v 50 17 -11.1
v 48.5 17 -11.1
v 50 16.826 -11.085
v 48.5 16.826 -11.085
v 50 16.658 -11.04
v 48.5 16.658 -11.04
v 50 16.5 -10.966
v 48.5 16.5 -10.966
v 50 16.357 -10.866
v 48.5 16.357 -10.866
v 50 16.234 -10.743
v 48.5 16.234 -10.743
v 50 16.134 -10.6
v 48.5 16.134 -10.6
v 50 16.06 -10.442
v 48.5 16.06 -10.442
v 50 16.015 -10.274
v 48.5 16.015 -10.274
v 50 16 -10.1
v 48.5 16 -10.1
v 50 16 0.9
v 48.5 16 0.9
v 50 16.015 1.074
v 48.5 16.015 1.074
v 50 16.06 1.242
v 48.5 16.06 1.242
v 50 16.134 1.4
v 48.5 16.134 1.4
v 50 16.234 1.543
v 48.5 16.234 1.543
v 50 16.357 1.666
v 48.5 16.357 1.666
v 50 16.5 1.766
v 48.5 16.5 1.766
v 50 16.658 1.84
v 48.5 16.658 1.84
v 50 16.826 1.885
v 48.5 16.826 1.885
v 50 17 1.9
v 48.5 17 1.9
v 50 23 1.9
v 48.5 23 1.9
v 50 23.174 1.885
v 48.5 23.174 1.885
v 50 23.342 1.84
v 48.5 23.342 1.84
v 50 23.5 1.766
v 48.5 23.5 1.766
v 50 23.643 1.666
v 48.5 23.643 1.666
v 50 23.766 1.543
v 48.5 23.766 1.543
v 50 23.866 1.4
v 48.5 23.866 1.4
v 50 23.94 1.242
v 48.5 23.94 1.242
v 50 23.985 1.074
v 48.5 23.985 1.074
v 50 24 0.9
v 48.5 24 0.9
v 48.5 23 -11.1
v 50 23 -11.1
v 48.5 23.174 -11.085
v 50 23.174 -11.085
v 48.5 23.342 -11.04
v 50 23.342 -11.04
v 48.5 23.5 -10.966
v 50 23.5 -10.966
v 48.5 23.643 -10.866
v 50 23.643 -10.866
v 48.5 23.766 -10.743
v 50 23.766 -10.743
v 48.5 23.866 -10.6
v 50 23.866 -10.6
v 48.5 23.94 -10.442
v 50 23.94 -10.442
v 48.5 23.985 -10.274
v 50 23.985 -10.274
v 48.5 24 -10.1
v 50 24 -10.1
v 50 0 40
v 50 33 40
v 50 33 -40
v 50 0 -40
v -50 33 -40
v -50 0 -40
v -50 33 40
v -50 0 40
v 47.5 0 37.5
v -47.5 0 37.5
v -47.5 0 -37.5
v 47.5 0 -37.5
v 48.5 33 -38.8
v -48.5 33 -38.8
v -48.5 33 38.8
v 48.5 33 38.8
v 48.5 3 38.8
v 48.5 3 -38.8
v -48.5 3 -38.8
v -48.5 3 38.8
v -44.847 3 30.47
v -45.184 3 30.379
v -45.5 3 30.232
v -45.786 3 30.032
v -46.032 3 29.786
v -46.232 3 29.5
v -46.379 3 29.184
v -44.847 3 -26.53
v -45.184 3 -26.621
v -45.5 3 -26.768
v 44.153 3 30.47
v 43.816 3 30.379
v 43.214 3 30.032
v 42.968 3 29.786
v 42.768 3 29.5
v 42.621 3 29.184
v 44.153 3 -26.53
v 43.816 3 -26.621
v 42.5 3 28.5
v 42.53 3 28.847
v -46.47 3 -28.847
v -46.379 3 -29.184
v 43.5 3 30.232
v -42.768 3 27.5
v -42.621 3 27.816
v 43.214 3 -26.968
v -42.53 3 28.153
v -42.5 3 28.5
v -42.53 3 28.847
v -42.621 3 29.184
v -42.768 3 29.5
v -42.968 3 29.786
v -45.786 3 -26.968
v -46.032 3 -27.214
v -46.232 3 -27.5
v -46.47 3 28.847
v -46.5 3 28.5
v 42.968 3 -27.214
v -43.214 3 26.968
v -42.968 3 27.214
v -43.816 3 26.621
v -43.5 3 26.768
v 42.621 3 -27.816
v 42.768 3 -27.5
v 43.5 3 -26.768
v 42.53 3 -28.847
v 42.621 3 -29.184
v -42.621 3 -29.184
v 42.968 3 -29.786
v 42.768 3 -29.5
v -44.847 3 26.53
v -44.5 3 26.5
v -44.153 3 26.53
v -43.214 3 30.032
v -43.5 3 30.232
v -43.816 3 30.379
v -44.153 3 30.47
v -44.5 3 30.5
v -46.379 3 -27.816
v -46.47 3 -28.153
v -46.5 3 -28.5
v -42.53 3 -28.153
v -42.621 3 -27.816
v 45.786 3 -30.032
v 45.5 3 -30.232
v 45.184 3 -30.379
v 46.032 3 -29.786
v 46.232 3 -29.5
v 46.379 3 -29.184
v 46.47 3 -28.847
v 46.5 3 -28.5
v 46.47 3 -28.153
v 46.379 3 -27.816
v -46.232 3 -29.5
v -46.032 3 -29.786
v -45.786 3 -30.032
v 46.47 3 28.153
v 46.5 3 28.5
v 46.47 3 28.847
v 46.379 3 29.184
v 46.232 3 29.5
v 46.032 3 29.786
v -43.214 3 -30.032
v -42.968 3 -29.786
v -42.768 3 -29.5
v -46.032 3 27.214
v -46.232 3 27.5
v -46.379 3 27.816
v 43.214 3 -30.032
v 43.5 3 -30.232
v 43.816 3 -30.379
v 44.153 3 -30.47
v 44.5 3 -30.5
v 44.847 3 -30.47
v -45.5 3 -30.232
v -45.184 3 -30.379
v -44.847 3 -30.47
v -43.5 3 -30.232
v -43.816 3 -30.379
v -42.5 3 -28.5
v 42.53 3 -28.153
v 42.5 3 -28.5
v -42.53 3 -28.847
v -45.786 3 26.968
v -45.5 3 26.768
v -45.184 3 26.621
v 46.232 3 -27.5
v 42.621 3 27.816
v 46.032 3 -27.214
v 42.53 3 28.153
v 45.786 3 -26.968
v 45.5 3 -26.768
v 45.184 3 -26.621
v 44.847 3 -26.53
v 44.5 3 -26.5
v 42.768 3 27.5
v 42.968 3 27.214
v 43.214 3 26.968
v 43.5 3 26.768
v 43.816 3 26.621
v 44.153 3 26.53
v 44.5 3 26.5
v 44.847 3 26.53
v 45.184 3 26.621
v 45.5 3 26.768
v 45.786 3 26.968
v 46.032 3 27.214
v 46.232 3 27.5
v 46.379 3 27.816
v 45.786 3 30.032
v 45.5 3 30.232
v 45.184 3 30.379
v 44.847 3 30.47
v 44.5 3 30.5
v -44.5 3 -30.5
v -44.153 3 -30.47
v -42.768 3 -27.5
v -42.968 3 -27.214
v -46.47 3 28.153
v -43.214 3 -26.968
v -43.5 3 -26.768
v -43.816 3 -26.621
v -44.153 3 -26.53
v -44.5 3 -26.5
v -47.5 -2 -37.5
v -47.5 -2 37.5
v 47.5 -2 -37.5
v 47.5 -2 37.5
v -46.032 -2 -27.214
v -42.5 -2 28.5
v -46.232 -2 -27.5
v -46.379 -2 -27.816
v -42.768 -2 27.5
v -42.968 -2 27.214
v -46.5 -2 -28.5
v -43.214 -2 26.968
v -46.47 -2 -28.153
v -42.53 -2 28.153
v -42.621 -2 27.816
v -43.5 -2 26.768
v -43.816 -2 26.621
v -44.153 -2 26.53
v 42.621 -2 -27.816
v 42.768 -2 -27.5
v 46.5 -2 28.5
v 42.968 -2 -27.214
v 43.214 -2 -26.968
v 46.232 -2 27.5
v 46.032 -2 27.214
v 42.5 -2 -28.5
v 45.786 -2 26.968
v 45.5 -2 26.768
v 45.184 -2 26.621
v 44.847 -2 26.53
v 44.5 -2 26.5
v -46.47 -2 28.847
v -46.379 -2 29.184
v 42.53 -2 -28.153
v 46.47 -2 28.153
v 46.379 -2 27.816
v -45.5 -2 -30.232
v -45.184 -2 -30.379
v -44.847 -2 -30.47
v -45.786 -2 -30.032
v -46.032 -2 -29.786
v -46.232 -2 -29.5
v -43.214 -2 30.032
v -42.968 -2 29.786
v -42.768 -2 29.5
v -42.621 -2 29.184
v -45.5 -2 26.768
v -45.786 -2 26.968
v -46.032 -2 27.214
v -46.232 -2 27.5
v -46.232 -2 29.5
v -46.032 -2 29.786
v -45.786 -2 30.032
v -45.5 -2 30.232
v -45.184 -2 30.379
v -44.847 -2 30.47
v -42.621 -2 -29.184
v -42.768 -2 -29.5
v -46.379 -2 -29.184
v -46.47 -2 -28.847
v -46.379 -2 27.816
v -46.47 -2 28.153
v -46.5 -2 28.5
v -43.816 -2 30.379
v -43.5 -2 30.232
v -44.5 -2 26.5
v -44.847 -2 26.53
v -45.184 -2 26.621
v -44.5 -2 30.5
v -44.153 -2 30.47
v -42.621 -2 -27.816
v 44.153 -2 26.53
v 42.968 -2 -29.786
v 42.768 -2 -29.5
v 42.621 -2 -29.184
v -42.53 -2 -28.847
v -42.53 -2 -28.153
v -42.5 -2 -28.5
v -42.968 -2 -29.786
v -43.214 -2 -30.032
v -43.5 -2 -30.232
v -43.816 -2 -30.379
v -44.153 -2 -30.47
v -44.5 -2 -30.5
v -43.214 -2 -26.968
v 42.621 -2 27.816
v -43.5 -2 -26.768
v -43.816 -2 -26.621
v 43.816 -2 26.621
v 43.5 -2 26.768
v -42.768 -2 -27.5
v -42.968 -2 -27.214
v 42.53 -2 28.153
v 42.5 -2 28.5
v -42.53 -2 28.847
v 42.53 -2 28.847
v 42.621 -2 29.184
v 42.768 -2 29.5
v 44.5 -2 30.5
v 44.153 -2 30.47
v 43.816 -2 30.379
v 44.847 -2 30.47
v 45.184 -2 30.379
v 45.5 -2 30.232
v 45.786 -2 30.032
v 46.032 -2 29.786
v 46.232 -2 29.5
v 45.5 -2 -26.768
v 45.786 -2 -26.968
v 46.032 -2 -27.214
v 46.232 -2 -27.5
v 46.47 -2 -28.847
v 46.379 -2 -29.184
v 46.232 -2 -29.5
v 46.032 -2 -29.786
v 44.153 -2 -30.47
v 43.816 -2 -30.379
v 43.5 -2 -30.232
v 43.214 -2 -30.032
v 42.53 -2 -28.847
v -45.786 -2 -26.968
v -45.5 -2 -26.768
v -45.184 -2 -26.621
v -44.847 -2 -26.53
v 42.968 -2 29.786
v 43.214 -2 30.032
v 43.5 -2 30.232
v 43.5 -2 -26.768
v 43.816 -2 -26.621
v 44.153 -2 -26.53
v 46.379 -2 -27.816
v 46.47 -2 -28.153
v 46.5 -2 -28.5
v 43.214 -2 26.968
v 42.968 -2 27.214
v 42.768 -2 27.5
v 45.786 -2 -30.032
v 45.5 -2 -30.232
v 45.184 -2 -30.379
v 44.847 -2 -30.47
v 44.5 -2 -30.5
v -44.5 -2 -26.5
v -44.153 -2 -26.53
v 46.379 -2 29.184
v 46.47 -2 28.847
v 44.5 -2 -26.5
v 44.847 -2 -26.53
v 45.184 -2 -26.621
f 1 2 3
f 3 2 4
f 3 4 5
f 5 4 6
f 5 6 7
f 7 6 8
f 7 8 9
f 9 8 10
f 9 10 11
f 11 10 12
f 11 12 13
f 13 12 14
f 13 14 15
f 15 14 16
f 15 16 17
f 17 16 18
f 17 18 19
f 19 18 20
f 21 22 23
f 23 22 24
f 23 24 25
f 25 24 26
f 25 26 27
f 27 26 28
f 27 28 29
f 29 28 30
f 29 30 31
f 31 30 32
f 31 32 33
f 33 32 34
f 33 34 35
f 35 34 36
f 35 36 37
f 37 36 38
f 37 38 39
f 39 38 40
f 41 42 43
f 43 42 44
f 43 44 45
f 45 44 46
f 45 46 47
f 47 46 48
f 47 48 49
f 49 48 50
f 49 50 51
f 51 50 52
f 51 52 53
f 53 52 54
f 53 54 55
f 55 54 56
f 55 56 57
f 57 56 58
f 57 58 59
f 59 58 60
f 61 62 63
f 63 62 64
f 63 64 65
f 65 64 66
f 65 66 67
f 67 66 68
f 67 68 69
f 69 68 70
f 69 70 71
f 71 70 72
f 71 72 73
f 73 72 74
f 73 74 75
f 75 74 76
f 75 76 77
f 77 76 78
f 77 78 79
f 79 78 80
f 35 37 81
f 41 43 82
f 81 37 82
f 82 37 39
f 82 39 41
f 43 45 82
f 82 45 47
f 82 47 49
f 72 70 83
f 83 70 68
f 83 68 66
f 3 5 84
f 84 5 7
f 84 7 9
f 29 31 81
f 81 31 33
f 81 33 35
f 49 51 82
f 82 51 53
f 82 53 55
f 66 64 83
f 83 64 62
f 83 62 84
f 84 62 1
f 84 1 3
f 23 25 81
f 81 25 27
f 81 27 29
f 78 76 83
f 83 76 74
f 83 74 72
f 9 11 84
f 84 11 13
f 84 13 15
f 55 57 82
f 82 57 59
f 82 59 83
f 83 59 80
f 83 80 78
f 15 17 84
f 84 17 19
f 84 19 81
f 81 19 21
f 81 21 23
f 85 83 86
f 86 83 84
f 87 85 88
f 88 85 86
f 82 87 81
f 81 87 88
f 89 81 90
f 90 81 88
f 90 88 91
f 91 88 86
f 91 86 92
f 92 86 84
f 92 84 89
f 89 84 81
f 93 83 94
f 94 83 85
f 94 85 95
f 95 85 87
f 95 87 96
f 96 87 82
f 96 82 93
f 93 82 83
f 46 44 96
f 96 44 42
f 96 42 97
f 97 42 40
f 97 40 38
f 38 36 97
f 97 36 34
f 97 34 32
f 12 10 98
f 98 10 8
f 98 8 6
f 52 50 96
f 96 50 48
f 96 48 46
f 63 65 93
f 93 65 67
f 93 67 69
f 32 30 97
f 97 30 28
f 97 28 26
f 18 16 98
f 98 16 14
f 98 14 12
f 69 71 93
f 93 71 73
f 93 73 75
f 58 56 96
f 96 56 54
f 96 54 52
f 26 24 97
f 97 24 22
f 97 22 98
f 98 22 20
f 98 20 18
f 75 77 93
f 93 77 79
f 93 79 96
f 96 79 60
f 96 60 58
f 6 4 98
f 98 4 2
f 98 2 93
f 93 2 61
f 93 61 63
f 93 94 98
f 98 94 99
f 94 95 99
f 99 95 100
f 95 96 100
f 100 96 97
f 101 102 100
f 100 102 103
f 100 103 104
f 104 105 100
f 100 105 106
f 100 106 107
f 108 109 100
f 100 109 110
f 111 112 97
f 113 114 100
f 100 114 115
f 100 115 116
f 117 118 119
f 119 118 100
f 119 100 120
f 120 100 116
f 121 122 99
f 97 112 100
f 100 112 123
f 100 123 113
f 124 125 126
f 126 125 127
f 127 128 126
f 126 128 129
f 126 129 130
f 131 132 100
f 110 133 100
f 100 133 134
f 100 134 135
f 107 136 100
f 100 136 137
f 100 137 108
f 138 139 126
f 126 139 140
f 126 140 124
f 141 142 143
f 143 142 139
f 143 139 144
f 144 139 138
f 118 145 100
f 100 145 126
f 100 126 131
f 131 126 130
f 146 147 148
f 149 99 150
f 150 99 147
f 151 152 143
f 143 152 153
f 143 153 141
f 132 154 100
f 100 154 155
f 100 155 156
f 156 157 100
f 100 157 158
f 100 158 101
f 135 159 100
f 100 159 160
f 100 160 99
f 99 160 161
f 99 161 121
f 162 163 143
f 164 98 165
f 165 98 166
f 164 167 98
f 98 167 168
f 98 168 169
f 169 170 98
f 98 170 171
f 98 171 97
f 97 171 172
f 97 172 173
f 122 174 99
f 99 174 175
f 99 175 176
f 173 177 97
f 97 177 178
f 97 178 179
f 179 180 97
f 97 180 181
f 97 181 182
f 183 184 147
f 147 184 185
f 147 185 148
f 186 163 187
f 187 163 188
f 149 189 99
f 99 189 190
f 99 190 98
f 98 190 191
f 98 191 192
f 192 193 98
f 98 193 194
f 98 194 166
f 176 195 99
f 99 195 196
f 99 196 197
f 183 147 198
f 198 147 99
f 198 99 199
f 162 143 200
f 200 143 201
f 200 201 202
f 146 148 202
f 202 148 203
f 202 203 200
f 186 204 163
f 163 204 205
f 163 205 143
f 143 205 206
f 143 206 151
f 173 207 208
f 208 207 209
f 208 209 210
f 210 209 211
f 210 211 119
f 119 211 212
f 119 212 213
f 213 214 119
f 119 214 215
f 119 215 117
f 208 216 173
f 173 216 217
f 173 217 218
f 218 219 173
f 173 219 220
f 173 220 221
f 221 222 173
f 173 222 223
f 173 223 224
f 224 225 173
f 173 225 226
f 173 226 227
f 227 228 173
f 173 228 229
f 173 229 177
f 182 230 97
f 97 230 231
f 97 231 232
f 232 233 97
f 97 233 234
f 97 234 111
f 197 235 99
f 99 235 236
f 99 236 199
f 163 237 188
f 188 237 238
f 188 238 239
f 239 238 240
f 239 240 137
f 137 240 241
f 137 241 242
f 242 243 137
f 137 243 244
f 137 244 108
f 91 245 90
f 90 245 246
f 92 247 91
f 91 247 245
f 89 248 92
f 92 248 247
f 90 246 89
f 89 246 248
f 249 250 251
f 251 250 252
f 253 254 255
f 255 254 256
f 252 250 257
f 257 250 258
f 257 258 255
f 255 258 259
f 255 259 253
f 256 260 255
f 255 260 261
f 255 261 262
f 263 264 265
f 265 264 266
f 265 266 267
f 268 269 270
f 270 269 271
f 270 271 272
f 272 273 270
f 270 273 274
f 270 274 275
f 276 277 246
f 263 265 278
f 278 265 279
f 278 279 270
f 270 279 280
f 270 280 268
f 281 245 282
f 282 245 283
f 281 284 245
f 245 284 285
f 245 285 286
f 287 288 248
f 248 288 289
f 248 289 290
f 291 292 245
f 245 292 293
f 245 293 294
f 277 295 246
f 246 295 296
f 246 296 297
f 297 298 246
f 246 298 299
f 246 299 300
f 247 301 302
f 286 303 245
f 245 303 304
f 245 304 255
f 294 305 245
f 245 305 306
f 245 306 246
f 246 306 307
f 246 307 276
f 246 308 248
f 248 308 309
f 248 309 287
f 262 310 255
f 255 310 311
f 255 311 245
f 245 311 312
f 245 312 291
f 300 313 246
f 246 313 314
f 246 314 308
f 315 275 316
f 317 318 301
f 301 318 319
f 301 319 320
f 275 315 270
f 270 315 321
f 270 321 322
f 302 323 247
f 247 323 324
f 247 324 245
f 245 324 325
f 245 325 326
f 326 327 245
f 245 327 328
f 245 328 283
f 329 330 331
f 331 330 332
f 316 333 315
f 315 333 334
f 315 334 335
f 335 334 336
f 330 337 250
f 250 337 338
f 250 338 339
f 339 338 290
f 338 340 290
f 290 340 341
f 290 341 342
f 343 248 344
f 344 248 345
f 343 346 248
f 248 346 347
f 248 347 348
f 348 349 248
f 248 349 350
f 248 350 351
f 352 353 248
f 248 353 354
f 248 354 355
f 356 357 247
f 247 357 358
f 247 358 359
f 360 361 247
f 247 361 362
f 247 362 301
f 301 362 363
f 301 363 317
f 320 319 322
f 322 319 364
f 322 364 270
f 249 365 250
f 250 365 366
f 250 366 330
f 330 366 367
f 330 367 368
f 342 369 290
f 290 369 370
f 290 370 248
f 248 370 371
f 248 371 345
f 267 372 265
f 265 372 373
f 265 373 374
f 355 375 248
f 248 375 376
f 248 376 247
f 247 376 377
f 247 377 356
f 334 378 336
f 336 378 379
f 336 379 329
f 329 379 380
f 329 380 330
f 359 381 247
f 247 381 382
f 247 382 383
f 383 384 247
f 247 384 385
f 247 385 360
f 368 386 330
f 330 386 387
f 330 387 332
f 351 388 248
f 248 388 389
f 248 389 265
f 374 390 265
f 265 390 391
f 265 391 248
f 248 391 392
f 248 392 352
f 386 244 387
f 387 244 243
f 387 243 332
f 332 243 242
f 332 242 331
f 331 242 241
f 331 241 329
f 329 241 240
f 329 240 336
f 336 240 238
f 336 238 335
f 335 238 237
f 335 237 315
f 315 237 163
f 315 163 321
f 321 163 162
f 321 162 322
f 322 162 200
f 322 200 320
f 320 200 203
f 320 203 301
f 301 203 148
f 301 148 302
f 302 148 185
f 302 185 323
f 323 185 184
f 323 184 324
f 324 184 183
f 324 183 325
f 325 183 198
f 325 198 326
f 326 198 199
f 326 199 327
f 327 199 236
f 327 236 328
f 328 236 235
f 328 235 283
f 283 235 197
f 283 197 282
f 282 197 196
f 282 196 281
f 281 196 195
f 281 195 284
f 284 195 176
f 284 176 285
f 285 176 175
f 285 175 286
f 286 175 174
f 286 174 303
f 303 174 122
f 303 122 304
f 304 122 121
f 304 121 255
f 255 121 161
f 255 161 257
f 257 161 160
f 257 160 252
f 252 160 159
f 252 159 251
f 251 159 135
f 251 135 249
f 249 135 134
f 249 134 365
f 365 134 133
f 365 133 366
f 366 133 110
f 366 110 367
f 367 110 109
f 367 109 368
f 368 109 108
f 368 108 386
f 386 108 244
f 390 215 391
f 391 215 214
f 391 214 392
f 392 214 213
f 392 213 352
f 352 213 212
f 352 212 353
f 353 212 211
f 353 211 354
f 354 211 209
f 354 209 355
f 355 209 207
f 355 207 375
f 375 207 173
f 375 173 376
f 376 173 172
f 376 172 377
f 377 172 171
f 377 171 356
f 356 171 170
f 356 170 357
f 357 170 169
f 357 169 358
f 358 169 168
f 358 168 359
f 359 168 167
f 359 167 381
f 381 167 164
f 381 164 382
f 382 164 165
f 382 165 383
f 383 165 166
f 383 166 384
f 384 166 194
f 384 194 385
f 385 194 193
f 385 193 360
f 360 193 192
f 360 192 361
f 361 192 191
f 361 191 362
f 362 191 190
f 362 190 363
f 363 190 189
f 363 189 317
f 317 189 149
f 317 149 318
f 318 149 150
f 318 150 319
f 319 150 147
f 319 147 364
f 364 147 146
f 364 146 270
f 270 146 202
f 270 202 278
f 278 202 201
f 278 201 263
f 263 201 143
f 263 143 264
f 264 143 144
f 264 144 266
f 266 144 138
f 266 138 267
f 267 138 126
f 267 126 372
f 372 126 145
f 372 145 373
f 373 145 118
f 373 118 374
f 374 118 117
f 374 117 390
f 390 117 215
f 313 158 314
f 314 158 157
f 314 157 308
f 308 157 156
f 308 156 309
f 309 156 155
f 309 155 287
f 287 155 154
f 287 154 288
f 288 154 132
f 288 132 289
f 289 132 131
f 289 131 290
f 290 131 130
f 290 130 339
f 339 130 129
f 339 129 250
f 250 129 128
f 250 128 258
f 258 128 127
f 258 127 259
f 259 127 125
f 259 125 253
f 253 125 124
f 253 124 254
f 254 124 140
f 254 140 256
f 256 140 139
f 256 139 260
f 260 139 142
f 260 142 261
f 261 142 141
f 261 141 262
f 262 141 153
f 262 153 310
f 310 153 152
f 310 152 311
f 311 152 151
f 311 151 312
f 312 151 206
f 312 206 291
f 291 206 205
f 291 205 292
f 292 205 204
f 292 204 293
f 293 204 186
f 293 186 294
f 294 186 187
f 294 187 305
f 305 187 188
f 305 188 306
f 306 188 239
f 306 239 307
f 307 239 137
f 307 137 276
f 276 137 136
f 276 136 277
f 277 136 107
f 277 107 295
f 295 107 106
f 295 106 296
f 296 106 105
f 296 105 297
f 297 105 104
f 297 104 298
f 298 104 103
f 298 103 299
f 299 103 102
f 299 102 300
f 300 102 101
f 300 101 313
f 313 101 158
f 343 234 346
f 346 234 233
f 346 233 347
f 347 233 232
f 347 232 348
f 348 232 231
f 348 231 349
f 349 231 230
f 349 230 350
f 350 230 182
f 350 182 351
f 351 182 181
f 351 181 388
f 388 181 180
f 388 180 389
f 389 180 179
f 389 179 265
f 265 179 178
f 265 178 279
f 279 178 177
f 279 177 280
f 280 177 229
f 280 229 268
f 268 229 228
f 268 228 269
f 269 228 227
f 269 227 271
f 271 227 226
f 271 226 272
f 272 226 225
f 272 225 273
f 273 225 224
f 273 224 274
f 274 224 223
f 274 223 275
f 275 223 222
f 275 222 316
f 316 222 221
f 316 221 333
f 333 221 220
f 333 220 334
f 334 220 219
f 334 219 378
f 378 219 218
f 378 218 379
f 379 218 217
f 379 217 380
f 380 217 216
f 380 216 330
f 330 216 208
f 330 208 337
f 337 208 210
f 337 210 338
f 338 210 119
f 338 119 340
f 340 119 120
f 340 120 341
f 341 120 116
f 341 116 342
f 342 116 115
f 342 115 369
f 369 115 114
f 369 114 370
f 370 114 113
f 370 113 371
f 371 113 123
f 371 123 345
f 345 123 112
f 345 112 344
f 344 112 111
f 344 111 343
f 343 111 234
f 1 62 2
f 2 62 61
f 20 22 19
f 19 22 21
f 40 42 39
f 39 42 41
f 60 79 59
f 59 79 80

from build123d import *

# Parameters (mm, degrees)
SKETCH1_W           = 100
SKETCH1_H           = 80
BOSS_EXTRUDE1_DEPTH = 3
SKETCH2_W           = 100
SKETCH2_H           = 80
SKETCH2_W_2         = 97
SKETCH2_H_2         = 77.6
BOSS_EXTRUDE2_DEPTH = 30
SKETCH3_R           = 2
CUT_EXTRUDE1_DEPTH  = 40
SKETCH4_W           = 95
SKETCH4_H           = 75
BOSS_EXTRUDE3_DEPTH = 5
SKETCH3_2_R         = 2
CUT_EXTRUDE2_DEPTH  = 12
SKETCH5_W           = 13
SKETCH5_H           = 8
CUT_EXTRUDE3_DEPTH  = 10
FILLET1_R           = 1
FILLET2_R           = 1
FILLET3_R           = 1
FILLET4_R           = 1


with BuildPart() as part:
    # Sketch1 → Boss-Extrude1 (new body)
    with BuildSketch(Plane(origin=(0, 0, 0), x_dir=(1, 0, 0), z_dir=(0, 1, 0))):
        Rectangle(SKETCH1_W, SKETCH1_H)
    extrude(amount=BOSS_EXTRUDE1_DEPTH)

    # Sketch2 → Boss-Extrude2 (add)
    with BuildSketch(Plane(origin=(0, 3, 0), x_dir=(1, 0, 0), z_dir=(0, 1, 0))):
        Rectangle(SKETCH2_W, SKETCH2_H)
        Rectangle(SKETCH2_W_2, SKETCH2_H_2, mode=Mode.SUBTRACT)
    extrude(amount=BOSS_EXTRUDE2_DEPTH)

    # Sketch3 → Cut-Extrude1 (cut)
    with BuildSketch(Plane(origin=(0, 3, 0), x_dir=(1, 0, 0), z_dir=(0, 1, 0))):
        with Locations((-44.5, 28.5)):
            Circle(SKETCH3_R)
        with Locations((44.5, 28.5)):
            Circle(SKETCH3_R)
        with Locations((-44.5, -28.5)):
            Circle(SKETCH3_R)
        with Locations((44.5, -28.5)):
            Circle(SKETCH3_R)
    extrude(amount=-CUT_EXTRUDE1_DEPTH, mode=Mode.SUBTRACT)

    # Sketch4 → Boss-Extrude3 (add)
    with BuildSketch(Plane(origin=(0, 3, 0), x_dir=(1, 0, 0), z_dir=(0, 1, 0))):
        Rectangle(SKETCH4_W, SKETCH4_H)
    extrude(amount=-BOSS_EXTRUDE3_DEPTH)

    # Sketch3<2> → Cut-Extrude2 (cut)
    with BuildSketch(Plane(origin=(0, 3, 0), x_dir=(1, 0, 0), z_dir=(0, 1, 0))):
        with Locations((-44.5, 28.5)):
            Circle(SKETCH3_2_R)
        with Locations((44.5, 28.5)):
            Circle(SKETCH3_2_R)
        with Locations((-44.5, -28.5)):
            Circle(SKETCH3_2_R)
        with Locations((44.5, -28.5)):
            Circle(SKETCH3_2_R)
    extrude(amount=-CUT_EXTRUDE2_DEPTH, mode=Mode.SUBTRACT)

    # Sketch5 → Cut-Extrude3 (cut)
    with BuildSketch(Plane(origin=(50, 0, 0), x_dir=(0, 0, -1), z_dir=(1, 0, 0))):
        with Locations((4.6, 20)):
            Rectangle(SKETCH5_W, SKETCH5_H)
    extrude(amount=-CUT_EXTRUDE3_DEPTH, mode=Mode.SUBTRACT)

    # Fillet1
    fillet1_edges = [part.edges().sort_by_distance(p)[0] for p in [
        (49.25, 24, -11.1),
    ]]
    fillet(fillet1_edges, radius=FILLET1_R)

    # Fillet2
    fillet2_edges = [part.edges().sort_by_distance(p)[0] for p in [
        (49.25, 24, 1.9),
    ]]
    fillet(fillet2_edges, radius=FILLET2_R)

    # Fillet3
    fillet3_edges = [part.edges().sort_by_distance(p)[0] for p in [
        (49.25, 16, 1.9),
    ]]
    fillet(fillet3_edges, radius=FILLET3_R)

    # Fillet4
    fillet4_edges = [part.edges().sort_by_distance(p)[0] for p in [
        (49.25, 16, -11.1),
    ]]
    fillet(fillet4_edges, radius=FILLET4_R)


solid = part.part
